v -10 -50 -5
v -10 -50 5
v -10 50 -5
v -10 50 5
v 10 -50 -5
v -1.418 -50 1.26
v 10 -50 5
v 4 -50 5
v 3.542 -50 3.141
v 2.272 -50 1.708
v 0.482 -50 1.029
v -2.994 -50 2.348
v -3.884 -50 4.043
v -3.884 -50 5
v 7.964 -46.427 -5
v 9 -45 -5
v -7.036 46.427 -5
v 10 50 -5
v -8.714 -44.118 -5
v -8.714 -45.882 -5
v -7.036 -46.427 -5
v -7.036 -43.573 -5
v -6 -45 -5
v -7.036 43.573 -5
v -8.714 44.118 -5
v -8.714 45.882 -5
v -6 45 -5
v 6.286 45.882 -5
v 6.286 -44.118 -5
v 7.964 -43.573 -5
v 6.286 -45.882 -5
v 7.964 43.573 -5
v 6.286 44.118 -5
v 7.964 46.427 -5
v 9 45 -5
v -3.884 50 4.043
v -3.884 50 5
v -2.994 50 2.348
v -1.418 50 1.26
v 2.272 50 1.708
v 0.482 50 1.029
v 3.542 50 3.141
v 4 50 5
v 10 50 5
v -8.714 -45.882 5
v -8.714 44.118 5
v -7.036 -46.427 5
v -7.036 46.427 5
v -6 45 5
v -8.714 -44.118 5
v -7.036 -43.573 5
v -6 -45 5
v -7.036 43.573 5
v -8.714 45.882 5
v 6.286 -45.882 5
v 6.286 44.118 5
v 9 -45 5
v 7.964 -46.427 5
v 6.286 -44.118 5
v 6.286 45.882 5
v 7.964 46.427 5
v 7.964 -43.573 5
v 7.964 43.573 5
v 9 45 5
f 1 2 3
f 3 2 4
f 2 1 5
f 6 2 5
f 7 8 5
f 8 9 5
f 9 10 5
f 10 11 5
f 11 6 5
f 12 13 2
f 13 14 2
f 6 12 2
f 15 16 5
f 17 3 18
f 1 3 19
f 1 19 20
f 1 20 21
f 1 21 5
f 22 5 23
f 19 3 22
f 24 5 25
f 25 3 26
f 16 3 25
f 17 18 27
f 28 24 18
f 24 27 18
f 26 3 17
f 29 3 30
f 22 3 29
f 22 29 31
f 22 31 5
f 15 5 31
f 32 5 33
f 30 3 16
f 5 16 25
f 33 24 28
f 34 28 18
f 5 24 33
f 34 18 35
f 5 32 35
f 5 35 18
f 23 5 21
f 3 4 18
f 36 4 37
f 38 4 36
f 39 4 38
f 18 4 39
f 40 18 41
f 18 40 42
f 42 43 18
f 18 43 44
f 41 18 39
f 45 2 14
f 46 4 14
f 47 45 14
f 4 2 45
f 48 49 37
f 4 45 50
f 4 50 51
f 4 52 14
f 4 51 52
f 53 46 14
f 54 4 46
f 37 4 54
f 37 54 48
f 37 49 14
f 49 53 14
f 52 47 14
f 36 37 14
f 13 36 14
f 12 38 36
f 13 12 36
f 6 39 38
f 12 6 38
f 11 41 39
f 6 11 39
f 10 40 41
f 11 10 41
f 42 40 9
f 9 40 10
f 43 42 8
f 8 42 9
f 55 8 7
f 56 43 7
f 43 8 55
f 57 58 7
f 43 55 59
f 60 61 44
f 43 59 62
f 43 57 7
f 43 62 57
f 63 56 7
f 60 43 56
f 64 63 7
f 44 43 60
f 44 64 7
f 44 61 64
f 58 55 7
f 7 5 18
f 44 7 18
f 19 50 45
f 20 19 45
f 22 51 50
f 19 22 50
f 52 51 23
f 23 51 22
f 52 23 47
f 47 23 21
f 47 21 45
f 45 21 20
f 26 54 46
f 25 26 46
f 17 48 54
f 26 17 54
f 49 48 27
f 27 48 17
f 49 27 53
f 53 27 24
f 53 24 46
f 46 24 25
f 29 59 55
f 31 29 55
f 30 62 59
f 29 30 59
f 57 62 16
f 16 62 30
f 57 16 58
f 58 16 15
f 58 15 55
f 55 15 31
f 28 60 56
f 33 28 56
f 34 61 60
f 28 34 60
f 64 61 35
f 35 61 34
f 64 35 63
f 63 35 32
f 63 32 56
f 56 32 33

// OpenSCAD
difference(){
	cube([20,100,10], center=true);
	translate([0,55,5]){
		rotate([90,0,0]){
			cylinder(h=110, r=4);
		}
	}
	translate([7.5,-45,-5]){
		cylinder(h=10, r = 1.5);
	}
	translate([7.5,45,-5]){
		cylinder(h=10, r = 1.5);
	}

	translate([-7.5,-45,-5]){
		cylinder(h=10, r = 1.5);
	}

	translate([-7.5,45,-5]){
		cylinder(h=10, r = 1.5);
	}




}
